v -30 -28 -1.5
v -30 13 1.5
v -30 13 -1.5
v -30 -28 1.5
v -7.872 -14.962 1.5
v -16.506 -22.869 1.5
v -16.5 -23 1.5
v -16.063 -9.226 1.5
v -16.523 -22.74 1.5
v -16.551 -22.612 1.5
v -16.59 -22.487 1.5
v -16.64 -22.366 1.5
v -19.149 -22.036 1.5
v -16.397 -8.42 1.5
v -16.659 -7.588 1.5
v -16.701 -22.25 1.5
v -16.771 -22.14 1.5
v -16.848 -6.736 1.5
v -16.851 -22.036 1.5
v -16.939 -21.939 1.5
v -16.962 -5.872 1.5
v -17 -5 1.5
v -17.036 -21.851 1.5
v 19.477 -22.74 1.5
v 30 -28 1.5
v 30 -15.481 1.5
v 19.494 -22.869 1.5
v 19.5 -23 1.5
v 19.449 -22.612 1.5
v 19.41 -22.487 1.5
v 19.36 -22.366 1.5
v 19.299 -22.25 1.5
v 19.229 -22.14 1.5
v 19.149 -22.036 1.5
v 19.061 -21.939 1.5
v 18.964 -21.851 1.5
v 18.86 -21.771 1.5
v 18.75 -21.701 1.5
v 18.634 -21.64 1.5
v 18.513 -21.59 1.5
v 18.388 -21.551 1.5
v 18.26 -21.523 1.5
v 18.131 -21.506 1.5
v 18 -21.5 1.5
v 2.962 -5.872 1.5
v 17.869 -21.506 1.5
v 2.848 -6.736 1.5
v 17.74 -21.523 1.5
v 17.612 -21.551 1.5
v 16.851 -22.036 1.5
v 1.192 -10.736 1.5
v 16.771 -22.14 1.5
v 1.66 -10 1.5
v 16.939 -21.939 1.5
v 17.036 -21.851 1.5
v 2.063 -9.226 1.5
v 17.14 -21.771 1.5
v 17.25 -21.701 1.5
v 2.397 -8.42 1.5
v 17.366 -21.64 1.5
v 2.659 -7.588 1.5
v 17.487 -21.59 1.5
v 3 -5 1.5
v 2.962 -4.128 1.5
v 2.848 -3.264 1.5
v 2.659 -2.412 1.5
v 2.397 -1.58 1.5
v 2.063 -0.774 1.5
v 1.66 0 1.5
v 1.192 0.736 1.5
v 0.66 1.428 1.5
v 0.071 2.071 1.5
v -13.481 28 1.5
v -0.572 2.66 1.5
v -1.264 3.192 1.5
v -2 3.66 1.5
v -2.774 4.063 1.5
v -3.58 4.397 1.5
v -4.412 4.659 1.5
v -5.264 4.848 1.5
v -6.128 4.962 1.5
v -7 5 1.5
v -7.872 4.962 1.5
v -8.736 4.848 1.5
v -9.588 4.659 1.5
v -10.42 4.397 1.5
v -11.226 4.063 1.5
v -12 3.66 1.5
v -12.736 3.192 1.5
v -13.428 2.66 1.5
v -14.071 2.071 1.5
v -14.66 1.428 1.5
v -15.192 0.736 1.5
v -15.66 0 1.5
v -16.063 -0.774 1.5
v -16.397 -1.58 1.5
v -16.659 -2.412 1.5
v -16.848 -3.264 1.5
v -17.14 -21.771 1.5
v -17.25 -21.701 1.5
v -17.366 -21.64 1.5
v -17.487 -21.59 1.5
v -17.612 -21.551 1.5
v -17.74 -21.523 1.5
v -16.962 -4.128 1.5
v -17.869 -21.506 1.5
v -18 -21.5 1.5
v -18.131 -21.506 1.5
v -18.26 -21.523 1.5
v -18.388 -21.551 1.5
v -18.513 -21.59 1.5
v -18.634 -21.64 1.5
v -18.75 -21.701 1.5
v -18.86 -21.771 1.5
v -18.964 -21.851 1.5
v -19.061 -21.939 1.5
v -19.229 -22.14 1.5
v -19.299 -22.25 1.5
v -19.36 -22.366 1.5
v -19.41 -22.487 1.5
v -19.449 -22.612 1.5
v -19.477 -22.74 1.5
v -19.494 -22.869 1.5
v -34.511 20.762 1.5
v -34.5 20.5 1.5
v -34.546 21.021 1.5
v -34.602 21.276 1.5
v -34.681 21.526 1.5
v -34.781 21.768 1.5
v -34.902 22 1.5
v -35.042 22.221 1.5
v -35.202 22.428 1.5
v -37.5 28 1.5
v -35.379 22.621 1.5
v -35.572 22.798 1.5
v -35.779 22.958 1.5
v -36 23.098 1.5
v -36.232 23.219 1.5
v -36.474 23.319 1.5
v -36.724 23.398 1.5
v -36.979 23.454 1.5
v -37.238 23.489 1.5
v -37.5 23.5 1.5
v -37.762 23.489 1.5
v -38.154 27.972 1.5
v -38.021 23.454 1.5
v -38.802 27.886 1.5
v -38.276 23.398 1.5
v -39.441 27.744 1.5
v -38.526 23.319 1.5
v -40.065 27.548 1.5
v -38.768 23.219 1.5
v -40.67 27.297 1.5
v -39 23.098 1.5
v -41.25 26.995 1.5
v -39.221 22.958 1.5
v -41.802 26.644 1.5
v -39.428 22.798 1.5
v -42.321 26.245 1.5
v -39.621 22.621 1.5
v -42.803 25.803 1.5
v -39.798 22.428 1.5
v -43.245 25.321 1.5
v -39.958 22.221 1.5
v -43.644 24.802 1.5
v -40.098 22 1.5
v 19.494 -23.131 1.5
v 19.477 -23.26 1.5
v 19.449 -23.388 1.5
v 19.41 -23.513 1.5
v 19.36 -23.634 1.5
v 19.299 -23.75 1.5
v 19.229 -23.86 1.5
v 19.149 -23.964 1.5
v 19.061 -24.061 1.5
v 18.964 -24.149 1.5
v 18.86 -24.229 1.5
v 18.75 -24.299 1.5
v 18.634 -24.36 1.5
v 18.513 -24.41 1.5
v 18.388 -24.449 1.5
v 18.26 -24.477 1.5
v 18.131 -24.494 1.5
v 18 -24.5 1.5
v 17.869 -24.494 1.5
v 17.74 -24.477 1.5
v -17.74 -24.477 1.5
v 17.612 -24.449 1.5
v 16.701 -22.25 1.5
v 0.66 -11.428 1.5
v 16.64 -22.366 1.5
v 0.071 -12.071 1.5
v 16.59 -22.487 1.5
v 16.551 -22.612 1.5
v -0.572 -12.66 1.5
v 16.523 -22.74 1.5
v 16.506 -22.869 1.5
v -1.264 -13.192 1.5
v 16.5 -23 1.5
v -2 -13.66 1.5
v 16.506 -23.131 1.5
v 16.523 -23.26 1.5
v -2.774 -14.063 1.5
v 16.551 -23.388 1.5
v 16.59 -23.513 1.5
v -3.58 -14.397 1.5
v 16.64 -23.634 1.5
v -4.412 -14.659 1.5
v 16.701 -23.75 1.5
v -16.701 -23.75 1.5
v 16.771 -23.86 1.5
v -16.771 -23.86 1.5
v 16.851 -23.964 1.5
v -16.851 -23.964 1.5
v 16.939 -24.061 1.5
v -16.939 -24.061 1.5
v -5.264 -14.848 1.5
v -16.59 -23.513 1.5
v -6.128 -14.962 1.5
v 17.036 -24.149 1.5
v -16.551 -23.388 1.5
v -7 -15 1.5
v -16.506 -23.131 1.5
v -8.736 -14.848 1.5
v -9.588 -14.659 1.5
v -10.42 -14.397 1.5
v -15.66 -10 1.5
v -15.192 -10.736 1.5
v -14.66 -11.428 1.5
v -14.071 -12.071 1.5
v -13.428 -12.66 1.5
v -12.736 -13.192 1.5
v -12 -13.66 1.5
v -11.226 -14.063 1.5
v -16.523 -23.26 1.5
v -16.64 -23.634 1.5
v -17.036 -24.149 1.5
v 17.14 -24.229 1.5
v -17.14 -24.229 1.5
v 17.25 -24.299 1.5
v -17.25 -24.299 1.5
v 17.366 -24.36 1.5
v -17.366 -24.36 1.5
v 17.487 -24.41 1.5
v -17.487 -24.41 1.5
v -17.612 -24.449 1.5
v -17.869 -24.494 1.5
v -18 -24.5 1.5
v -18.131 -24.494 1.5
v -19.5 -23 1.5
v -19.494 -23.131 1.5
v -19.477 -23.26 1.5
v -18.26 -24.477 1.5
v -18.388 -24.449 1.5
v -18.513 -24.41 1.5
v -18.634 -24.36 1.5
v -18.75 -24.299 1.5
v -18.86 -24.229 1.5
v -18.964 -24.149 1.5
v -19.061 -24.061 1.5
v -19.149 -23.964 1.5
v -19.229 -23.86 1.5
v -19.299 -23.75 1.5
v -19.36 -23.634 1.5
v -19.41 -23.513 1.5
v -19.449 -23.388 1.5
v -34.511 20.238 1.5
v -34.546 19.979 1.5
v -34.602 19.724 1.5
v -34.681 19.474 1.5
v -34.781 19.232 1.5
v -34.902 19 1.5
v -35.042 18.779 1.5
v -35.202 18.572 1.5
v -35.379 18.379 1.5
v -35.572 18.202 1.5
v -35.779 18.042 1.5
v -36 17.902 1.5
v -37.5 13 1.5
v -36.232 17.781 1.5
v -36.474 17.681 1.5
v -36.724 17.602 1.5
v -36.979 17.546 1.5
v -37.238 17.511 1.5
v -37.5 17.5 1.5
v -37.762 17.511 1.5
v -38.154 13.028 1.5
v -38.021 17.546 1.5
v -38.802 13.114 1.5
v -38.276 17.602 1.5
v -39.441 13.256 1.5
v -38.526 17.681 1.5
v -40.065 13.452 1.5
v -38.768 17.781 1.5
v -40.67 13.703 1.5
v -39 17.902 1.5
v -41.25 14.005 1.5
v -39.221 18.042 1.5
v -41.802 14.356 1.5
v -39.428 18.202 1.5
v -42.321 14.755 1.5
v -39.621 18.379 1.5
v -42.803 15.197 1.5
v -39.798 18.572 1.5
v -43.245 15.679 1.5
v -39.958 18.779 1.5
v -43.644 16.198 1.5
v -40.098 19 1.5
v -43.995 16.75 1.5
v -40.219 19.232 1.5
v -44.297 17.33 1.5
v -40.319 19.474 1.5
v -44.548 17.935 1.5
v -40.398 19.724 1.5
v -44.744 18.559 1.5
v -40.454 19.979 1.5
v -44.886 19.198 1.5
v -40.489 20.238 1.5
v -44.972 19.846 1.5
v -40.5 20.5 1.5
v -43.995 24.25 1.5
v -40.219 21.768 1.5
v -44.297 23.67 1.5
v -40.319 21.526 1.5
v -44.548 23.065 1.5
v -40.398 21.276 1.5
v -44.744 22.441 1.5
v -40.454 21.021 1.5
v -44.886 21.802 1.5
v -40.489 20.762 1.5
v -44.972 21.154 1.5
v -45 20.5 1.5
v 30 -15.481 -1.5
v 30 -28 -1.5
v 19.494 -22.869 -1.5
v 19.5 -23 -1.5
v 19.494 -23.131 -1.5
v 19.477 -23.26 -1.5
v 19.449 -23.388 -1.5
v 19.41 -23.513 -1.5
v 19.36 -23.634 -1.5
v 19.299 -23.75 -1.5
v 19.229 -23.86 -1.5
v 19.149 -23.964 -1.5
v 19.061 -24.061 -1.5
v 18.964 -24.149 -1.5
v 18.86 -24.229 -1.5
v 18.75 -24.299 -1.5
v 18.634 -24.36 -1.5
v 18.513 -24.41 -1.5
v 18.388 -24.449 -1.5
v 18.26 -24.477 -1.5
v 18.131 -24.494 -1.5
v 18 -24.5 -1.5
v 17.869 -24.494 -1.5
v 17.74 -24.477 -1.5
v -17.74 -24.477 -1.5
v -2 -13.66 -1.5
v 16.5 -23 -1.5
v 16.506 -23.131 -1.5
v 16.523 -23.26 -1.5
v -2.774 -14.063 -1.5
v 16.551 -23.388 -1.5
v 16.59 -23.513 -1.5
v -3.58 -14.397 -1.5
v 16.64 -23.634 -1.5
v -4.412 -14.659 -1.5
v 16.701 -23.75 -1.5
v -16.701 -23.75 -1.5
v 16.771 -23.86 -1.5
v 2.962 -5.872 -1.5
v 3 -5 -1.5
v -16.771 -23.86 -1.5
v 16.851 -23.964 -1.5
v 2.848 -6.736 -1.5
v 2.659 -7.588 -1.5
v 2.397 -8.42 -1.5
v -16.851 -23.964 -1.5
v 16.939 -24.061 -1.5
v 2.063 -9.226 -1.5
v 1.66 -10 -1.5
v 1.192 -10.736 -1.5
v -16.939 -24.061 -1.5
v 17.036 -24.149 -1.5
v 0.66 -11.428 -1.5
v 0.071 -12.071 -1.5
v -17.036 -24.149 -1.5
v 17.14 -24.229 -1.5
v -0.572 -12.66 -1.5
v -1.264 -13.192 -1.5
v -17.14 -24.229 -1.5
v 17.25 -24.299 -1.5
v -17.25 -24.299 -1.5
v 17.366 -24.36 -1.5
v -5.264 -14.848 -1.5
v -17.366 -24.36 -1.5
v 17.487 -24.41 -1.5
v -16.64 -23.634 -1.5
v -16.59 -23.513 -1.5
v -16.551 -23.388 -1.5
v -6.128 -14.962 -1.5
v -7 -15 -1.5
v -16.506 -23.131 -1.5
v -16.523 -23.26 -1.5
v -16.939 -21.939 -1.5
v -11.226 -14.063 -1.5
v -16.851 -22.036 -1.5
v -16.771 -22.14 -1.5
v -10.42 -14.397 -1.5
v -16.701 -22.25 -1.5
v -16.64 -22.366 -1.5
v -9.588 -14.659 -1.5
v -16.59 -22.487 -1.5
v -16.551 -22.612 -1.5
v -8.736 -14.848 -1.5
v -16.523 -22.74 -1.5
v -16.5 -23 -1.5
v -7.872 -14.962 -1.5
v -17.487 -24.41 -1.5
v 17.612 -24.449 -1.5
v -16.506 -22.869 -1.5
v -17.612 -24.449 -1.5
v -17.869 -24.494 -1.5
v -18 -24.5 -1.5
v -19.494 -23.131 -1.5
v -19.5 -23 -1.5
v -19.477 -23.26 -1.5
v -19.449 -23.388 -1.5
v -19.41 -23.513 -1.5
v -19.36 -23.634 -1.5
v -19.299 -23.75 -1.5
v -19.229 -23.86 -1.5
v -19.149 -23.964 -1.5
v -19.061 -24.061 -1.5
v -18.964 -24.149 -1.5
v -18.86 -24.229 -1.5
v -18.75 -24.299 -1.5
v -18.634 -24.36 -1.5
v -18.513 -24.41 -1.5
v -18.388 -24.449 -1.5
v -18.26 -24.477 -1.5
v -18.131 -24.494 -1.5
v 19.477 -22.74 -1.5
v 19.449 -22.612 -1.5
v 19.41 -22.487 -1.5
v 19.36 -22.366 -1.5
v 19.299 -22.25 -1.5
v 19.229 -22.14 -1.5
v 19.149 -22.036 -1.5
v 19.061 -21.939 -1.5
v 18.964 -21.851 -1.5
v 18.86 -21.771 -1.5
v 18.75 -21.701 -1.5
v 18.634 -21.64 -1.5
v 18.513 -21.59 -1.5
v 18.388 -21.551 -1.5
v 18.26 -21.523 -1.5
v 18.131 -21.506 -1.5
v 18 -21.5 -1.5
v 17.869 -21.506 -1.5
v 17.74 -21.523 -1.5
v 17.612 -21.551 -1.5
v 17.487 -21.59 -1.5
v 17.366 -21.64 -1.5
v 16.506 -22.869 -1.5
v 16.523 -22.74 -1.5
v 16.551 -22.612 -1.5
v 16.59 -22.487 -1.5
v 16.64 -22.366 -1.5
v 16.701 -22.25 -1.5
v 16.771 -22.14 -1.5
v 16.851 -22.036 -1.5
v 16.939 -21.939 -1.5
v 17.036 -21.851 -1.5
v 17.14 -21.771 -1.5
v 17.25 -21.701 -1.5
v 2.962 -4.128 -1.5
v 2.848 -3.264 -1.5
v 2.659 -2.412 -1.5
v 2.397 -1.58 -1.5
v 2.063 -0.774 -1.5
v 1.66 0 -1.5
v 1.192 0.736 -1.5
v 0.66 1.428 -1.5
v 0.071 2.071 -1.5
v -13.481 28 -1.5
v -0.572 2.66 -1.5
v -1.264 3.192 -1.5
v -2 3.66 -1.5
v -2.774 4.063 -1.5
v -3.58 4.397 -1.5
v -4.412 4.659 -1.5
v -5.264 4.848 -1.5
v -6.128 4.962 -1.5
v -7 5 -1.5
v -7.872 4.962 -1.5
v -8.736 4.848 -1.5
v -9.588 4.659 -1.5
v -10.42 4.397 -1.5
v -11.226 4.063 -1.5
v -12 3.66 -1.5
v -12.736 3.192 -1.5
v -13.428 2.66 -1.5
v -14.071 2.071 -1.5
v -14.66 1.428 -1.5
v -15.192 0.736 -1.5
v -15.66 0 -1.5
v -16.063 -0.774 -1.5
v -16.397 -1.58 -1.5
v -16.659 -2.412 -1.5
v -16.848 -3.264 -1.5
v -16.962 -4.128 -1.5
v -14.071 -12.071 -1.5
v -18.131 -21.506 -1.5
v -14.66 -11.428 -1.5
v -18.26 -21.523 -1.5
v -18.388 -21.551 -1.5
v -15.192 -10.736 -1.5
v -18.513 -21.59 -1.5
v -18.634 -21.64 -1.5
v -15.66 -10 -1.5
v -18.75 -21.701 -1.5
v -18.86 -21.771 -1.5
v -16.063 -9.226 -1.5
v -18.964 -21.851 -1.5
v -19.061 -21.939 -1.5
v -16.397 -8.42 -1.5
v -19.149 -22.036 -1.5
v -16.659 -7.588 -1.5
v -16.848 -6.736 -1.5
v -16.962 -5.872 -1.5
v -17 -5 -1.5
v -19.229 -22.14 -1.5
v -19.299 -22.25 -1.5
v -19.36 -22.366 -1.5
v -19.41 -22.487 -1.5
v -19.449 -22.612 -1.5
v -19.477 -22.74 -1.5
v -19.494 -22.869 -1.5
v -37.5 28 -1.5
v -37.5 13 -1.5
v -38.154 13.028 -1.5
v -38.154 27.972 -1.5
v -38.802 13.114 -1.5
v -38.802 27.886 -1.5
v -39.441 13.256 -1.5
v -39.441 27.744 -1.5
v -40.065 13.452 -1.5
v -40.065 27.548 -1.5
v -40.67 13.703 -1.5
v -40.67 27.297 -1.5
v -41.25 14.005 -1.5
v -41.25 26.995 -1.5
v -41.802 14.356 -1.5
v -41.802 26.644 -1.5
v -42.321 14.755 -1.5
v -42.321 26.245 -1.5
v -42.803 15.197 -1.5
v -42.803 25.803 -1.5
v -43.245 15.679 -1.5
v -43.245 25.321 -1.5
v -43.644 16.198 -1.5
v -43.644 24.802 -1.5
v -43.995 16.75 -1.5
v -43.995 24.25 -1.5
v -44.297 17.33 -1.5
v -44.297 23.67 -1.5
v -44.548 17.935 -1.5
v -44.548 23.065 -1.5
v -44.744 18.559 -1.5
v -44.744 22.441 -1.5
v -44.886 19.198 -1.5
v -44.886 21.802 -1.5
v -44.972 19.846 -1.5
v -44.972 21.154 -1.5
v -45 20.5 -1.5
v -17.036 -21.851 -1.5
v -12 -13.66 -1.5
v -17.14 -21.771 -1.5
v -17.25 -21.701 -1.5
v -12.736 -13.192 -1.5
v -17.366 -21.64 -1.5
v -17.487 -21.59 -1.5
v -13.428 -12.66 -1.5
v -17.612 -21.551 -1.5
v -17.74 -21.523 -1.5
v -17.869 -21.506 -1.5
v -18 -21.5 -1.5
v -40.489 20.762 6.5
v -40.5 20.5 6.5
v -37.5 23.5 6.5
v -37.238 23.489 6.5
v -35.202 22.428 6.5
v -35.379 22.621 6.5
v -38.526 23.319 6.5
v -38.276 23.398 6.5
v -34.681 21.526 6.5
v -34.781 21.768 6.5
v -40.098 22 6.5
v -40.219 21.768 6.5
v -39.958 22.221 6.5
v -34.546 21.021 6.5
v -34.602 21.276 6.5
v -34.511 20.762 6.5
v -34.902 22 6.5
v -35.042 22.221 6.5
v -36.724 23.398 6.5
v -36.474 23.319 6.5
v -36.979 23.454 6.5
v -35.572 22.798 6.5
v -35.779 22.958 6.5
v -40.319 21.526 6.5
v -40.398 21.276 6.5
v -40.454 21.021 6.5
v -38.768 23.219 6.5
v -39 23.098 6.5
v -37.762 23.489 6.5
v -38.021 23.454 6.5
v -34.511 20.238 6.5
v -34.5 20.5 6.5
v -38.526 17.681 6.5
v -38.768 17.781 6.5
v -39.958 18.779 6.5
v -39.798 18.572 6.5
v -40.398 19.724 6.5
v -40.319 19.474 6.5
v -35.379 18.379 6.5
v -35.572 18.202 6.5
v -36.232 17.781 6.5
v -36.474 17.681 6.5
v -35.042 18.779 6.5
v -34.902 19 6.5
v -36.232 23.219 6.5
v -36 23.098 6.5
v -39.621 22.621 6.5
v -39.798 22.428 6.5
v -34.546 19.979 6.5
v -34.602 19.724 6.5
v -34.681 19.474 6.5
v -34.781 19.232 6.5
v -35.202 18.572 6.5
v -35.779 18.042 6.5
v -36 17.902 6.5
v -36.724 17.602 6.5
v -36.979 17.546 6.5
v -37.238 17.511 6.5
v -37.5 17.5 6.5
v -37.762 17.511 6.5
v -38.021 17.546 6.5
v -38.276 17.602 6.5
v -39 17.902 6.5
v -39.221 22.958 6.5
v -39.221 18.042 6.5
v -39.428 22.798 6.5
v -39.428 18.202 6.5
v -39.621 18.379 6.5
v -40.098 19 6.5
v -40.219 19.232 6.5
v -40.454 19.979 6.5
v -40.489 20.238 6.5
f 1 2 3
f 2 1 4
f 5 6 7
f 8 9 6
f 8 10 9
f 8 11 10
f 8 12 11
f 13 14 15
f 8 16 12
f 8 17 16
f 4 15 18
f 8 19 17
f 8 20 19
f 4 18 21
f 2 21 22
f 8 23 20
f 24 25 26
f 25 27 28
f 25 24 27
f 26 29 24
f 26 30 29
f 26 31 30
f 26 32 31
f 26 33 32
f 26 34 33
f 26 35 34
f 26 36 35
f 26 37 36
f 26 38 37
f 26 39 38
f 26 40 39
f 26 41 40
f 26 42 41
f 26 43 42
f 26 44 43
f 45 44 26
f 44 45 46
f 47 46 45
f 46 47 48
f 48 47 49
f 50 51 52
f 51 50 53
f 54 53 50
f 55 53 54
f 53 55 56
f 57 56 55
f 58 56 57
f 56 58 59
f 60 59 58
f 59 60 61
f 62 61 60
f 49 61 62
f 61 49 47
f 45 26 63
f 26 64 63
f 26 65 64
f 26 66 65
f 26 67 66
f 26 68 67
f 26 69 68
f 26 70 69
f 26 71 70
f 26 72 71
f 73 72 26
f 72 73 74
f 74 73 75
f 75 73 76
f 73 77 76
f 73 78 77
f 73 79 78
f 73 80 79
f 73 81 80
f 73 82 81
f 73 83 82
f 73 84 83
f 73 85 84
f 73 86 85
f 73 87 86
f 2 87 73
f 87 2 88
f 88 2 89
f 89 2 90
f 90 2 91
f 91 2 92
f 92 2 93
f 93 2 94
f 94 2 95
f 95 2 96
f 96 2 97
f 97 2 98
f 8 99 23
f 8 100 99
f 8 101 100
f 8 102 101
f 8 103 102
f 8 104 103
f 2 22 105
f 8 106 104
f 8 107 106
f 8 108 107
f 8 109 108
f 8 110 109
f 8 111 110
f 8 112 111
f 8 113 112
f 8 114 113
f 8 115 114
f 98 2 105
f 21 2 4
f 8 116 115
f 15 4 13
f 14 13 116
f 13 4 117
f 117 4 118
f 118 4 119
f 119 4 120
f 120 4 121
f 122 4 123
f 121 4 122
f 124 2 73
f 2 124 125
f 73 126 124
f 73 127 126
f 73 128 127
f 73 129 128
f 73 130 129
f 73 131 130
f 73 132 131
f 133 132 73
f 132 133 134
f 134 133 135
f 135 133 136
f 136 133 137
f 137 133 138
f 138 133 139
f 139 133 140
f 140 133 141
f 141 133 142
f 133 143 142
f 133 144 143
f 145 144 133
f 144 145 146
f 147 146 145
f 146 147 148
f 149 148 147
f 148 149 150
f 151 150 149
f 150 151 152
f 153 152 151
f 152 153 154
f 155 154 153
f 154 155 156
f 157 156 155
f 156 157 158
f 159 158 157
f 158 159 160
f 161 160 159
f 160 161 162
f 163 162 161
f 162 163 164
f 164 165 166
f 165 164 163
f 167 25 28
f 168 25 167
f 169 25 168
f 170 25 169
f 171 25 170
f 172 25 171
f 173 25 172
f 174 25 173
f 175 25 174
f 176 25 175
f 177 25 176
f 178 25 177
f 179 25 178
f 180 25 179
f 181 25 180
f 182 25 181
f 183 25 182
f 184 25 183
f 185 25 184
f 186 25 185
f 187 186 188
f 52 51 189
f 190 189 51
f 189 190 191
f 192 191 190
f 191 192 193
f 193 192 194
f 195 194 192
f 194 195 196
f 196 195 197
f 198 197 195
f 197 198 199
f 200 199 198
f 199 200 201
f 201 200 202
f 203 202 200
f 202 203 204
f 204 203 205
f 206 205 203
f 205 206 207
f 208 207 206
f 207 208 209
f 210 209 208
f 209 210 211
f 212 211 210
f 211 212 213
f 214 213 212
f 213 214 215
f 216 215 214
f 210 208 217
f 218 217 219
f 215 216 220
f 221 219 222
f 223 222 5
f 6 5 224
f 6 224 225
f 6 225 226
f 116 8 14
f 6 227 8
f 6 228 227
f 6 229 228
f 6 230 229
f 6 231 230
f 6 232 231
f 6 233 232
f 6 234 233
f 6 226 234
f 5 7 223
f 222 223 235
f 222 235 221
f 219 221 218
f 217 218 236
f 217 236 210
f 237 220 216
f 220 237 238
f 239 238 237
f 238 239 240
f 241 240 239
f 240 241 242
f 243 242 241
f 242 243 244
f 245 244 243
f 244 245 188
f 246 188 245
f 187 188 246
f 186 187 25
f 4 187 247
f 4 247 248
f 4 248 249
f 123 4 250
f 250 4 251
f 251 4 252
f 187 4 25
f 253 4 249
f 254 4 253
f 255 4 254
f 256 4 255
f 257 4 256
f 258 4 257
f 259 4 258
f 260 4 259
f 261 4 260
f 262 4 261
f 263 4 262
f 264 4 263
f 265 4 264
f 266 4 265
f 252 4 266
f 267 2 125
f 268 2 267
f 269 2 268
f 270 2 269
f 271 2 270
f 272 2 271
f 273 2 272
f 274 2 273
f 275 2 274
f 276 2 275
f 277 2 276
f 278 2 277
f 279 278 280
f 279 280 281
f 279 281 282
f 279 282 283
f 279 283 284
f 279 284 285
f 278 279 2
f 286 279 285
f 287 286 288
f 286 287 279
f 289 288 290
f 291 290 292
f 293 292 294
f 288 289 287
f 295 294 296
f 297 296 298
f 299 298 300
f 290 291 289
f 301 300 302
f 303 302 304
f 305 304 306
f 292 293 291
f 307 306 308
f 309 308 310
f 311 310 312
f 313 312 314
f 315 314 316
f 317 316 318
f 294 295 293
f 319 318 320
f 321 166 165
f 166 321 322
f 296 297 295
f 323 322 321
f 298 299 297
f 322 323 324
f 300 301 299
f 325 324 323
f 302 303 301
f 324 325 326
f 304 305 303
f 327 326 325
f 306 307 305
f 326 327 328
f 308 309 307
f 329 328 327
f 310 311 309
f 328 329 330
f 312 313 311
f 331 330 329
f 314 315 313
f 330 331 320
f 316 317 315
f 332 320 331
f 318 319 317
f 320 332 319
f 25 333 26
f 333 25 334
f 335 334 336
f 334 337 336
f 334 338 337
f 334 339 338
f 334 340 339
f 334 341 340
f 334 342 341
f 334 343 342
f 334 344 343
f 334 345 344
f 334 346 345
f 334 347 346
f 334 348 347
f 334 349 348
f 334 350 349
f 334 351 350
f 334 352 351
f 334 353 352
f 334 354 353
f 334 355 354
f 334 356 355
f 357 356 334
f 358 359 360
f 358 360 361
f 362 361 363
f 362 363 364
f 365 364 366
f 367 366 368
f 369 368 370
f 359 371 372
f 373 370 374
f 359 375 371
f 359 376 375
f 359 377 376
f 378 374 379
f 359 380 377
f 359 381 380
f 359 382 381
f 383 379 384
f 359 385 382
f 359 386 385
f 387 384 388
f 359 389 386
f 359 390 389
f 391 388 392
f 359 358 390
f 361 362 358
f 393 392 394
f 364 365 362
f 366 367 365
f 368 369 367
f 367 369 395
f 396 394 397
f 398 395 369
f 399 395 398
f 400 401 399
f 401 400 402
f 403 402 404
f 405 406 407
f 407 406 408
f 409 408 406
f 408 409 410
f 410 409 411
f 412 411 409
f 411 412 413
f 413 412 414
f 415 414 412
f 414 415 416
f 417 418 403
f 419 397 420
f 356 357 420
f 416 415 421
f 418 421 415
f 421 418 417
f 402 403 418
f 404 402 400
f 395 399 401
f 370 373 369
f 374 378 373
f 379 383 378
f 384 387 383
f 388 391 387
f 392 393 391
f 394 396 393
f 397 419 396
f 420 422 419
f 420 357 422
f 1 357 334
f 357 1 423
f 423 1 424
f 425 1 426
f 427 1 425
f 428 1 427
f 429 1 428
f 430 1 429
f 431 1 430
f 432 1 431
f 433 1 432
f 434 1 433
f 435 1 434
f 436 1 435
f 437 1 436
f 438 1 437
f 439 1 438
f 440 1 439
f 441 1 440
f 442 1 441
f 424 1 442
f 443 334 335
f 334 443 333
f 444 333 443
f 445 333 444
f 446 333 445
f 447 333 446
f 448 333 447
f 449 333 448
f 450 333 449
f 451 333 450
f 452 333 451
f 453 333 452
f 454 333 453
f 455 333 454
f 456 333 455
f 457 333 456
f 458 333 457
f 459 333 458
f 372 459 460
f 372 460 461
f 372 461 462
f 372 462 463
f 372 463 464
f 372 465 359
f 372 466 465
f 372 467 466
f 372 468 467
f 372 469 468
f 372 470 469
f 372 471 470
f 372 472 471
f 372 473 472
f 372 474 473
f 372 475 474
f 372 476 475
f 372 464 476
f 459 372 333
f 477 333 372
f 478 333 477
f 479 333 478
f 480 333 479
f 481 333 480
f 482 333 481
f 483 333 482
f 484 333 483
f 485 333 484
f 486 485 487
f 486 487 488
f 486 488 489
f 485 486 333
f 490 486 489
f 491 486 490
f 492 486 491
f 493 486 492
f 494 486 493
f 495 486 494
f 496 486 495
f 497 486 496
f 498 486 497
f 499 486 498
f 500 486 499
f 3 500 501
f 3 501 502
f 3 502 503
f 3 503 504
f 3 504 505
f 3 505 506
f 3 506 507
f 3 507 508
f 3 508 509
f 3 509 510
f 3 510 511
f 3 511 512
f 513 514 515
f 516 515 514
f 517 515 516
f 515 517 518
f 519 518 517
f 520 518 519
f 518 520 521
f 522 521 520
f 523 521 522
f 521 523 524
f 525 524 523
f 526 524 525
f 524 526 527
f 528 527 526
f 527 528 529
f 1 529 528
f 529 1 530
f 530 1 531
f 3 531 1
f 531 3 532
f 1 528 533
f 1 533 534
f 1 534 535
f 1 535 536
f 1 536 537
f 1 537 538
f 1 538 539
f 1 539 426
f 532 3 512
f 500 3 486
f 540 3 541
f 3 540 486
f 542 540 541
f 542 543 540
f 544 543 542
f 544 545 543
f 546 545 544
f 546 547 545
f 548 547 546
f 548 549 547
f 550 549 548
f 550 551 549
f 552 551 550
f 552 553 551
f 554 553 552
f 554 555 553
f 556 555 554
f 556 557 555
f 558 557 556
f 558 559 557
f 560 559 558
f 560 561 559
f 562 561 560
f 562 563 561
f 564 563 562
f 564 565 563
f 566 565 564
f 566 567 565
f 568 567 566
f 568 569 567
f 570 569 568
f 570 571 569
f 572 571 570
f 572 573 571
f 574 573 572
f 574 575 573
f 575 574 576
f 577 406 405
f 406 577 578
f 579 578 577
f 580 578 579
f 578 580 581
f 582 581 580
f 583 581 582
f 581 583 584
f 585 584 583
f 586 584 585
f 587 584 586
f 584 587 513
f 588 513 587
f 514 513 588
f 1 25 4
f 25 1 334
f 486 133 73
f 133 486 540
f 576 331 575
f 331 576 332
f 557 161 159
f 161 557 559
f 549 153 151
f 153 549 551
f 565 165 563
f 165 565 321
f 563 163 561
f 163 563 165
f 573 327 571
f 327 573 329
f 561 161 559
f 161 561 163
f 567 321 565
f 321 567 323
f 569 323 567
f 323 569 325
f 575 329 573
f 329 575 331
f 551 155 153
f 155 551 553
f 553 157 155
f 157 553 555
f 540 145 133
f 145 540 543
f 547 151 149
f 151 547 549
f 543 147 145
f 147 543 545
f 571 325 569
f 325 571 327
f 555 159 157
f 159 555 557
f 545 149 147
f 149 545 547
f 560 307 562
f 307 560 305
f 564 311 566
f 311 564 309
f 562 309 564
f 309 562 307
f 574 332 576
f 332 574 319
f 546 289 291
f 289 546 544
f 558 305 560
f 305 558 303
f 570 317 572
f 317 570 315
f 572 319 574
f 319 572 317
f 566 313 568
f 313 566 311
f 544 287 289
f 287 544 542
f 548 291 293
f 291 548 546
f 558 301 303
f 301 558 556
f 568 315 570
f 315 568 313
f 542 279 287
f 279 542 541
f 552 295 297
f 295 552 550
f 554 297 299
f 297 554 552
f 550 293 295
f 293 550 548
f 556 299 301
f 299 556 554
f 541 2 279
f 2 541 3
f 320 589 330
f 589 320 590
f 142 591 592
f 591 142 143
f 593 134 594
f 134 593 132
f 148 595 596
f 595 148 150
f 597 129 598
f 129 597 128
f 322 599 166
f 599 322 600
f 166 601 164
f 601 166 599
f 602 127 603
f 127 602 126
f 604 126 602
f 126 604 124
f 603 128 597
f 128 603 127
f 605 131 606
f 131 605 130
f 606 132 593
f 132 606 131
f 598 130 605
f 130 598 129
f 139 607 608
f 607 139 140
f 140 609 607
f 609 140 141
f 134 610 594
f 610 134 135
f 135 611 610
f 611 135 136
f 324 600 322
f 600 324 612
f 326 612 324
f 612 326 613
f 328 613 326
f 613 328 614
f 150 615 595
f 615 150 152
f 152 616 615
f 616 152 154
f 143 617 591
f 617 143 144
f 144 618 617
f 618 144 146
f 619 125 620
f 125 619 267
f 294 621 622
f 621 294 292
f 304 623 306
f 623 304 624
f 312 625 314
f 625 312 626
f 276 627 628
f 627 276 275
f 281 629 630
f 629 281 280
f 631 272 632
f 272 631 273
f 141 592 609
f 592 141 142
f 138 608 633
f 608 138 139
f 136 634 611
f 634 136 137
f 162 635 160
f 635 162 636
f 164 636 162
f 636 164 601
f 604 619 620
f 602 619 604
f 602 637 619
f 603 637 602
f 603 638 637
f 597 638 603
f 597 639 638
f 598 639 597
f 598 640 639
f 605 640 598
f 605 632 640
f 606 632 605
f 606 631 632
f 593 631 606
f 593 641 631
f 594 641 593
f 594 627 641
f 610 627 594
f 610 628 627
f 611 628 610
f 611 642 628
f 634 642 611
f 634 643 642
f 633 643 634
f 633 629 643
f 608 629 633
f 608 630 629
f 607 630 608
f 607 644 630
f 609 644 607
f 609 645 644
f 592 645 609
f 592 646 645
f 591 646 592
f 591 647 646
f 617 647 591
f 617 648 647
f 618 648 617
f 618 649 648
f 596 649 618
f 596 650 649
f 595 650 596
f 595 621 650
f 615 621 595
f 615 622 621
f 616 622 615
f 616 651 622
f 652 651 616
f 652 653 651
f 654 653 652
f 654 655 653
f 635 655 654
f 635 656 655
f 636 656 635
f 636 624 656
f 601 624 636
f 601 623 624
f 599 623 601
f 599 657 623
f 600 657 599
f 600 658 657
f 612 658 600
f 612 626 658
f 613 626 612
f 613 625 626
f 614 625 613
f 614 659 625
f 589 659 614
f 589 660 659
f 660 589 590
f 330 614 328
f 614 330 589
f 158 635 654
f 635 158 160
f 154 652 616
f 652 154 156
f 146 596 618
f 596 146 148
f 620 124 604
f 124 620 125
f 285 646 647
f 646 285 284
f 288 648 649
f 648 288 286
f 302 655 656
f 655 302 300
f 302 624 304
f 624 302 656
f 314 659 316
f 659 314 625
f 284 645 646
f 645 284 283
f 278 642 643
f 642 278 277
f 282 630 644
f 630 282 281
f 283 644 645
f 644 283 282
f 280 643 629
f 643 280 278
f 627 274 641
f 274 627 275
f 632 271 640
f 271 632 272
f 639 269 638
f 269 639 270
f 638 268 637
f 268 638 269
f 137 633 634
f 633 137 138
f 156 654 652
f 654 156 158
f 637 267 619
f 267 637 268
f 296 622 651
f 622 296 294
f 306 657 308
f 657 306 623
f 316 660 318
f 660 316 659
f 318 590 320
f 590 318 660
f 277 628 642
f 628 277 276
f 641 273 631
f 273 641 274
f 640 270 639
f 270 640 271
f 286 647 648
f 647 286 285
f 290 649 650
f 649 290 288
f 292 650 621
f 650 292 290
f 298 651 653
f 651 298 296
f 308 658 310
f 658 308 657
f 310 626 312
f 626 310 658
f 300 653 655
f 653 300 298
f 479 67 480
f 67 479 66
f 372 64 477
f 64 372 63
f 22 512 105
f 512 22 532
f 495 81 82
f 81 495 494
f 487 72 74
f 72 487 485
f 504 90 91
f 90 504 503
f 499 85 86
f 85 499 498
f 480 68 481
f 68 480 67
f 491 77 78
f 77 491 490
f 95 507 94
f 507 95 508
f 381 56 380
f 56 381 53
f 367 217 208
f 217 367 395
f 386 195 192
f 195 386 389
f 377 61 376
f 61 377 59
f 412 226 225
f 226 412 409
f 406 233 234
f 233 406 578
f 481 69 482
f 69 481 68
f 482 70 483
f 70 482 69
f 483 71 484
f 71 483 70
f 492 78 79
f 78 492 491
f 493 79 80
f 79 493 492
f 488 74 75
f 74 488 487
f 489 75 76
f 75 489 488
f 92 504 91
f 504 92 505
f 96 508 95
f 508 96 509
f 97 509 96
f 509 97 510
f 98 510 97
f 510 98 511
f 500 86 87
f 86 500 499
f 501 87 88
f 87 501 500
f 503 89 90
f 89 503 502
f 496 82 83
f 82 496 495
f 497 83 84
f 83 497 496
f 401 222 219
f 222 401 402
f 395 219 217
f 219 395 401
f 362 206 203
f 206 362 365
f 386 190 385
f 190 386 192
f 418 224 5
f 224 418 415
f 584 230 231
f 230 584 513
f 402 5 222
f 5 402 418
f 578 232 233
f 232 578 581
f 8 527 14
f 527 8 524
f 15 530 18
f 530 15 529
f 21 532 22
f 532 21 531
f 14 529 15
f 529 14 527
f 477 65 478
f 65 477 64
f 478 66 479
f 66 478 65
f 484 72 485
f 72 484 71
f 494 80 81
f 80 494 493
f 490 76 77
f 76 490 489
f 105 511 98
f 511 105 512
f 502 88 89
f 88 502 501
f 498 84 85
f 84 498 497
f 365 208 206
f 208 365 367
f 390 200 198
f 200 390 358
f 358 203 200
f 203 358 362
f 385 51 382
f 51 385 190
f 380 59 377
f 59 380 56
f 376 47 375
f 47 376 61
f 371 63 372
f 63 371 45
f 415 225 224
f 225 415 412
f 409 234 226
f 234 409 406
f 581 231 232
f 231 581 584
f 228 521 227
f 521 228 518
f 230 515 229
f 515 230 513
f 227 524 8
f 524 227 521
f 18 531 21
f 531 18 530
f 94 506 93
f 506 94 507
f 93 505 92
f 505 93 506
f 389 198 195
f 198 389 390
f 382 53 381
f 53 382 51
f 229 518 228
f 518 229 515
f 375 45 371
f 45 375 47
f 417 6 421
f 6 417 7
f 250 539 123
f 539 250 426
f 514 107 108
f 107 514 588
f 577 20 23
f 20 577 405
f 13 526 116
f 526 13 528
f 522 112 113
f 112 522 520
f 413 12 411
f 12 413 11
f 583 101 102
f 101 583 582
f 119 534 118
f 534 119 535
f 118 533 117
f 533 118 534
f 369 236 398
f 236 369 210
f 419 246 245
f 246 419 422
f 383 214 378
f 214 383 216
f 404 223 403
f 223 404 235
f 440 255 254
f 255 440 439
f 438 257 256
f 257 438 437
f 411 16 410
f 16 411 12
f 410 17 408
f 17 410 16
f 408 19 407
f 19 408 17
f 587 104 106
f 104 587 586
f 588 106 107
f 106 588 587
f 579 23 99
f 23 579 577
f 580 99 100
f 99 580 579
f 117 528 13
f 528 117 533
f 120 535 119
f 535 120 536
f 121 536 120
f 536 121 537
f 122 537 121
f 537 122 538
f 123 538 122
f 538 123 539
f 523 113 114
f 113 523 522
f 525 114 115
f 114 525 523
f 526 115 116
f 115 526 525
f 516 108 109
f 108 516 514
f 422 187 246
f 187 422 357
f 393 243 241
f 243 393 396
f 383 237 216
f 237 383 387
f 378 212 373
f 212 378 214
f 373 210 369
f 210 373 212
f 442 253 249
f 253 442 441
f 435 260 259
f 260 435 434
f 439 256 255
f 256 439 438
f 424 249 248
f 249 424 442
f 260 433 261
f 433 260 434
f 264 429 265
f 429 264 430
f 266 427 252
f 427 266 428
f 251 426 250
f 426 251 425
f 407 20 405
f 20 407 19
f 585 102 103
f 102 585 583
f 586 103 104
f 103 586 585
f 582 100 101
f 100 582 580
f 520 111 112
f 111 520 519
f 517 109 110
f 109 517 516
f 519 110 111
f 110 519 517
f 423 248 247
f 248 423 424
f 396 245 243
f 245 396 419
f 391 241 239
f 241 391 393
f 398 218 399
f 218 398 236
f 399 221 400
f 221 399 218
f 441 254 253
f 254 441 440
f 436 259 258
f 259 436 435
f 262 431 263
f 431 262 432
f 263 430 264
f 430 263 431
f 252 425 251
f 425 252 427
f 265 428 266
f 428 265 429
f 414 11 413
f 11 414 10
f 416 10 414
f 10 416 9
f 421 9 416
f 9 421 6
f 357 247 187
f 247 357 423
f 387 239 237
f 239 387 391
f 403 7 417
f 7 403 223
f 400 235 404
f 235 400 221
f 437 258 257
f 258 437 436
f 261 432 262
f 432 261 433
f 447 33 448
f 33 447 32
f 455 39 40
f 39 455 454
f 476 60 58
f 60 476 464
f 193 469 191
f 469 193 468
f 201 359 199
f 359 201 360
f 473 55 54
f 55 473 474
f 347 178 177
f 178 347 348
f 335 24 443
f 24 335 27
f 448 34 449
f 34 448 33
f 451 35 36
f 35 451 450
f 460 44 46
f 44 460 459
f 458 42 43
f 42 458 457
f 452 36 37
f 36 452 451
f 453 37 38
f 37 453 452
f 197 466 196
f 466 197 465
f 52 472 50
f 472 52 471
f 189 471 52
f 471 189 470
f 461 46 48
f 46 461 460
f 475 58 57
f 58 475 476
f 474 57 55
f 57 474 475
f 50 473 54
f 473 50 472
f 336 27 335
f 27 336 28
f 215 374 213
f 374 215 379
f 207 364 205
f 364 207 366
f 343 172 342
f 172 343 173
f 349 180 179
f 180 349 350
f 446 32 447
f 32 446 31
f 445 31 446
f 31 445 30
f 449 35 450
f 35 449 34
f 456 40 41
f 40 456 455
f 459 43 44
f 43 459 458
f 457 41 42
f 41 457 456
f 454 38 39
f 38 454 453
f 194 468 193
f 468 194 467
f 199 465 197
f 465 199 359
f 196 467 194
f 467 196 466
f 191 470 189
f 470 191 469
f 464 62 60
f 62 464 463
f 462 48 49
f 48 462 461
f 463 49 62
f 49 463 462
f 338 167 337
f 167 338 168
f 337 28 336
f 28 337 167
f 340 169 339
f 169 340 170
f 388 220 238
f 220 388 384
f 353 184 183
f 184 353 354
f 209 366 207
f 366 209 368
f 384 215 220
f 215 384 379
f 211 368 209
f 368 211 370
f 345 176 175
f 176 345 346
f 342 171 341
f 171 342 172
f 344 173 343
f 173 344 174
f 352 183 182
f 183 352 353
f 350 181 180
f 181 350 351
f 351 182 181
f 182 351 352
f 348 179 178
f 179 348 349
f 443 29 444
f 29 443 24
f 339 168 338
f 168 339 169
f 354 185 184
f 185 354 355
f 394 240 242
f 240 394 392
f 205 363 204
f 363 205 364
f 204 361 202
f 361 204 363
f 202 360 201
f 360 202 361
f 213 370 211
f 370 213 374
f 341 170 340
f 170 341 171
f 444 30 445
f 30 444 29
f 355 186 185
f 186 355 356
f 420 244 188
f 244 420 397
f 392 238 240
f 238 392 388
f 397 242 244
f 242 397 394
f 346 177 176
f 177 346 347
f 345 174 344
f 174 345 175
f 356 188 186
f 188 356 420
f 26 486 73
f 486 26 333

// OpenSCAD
// side mounts for tilt with std servo
// HK=hobby king 15269 servo

$fn=72;
difference(){
    union(){
    cube([60,56,3], center=true);  // baseplate  
    translate([-60/2-15/2,60/2-15/2-2,0])cylinder(h=3,r=15/2,center=true); // cylinder
    translate([-60/2-15+15/2,60/2-15-2,-3/2])cube([15,15,3]); // cylinder  
    translate([-60/2-15/2,60/2-15/2-2,4])cylinder(h=5,r=6/2,center=true); //shaft cylinder 
    } 
    union(){
      translate([-7,-5,0])cylinder(h=3,r=(20)/2,center=true); // big cutout
      translate([-18,-60/2+5+2,0])cylinder(h=3,r=(3.0)/2,center=true); // mnt hole 
      translate([18,-60/2+5+2,0])cylinder(h=3,r=(3.0)/2,center=true); // mnt hole 
      translate([55/4+5,55/4+5,0])rotate([0,0,45])cube([65/2,65,3], center=true);  
        
    }
}
